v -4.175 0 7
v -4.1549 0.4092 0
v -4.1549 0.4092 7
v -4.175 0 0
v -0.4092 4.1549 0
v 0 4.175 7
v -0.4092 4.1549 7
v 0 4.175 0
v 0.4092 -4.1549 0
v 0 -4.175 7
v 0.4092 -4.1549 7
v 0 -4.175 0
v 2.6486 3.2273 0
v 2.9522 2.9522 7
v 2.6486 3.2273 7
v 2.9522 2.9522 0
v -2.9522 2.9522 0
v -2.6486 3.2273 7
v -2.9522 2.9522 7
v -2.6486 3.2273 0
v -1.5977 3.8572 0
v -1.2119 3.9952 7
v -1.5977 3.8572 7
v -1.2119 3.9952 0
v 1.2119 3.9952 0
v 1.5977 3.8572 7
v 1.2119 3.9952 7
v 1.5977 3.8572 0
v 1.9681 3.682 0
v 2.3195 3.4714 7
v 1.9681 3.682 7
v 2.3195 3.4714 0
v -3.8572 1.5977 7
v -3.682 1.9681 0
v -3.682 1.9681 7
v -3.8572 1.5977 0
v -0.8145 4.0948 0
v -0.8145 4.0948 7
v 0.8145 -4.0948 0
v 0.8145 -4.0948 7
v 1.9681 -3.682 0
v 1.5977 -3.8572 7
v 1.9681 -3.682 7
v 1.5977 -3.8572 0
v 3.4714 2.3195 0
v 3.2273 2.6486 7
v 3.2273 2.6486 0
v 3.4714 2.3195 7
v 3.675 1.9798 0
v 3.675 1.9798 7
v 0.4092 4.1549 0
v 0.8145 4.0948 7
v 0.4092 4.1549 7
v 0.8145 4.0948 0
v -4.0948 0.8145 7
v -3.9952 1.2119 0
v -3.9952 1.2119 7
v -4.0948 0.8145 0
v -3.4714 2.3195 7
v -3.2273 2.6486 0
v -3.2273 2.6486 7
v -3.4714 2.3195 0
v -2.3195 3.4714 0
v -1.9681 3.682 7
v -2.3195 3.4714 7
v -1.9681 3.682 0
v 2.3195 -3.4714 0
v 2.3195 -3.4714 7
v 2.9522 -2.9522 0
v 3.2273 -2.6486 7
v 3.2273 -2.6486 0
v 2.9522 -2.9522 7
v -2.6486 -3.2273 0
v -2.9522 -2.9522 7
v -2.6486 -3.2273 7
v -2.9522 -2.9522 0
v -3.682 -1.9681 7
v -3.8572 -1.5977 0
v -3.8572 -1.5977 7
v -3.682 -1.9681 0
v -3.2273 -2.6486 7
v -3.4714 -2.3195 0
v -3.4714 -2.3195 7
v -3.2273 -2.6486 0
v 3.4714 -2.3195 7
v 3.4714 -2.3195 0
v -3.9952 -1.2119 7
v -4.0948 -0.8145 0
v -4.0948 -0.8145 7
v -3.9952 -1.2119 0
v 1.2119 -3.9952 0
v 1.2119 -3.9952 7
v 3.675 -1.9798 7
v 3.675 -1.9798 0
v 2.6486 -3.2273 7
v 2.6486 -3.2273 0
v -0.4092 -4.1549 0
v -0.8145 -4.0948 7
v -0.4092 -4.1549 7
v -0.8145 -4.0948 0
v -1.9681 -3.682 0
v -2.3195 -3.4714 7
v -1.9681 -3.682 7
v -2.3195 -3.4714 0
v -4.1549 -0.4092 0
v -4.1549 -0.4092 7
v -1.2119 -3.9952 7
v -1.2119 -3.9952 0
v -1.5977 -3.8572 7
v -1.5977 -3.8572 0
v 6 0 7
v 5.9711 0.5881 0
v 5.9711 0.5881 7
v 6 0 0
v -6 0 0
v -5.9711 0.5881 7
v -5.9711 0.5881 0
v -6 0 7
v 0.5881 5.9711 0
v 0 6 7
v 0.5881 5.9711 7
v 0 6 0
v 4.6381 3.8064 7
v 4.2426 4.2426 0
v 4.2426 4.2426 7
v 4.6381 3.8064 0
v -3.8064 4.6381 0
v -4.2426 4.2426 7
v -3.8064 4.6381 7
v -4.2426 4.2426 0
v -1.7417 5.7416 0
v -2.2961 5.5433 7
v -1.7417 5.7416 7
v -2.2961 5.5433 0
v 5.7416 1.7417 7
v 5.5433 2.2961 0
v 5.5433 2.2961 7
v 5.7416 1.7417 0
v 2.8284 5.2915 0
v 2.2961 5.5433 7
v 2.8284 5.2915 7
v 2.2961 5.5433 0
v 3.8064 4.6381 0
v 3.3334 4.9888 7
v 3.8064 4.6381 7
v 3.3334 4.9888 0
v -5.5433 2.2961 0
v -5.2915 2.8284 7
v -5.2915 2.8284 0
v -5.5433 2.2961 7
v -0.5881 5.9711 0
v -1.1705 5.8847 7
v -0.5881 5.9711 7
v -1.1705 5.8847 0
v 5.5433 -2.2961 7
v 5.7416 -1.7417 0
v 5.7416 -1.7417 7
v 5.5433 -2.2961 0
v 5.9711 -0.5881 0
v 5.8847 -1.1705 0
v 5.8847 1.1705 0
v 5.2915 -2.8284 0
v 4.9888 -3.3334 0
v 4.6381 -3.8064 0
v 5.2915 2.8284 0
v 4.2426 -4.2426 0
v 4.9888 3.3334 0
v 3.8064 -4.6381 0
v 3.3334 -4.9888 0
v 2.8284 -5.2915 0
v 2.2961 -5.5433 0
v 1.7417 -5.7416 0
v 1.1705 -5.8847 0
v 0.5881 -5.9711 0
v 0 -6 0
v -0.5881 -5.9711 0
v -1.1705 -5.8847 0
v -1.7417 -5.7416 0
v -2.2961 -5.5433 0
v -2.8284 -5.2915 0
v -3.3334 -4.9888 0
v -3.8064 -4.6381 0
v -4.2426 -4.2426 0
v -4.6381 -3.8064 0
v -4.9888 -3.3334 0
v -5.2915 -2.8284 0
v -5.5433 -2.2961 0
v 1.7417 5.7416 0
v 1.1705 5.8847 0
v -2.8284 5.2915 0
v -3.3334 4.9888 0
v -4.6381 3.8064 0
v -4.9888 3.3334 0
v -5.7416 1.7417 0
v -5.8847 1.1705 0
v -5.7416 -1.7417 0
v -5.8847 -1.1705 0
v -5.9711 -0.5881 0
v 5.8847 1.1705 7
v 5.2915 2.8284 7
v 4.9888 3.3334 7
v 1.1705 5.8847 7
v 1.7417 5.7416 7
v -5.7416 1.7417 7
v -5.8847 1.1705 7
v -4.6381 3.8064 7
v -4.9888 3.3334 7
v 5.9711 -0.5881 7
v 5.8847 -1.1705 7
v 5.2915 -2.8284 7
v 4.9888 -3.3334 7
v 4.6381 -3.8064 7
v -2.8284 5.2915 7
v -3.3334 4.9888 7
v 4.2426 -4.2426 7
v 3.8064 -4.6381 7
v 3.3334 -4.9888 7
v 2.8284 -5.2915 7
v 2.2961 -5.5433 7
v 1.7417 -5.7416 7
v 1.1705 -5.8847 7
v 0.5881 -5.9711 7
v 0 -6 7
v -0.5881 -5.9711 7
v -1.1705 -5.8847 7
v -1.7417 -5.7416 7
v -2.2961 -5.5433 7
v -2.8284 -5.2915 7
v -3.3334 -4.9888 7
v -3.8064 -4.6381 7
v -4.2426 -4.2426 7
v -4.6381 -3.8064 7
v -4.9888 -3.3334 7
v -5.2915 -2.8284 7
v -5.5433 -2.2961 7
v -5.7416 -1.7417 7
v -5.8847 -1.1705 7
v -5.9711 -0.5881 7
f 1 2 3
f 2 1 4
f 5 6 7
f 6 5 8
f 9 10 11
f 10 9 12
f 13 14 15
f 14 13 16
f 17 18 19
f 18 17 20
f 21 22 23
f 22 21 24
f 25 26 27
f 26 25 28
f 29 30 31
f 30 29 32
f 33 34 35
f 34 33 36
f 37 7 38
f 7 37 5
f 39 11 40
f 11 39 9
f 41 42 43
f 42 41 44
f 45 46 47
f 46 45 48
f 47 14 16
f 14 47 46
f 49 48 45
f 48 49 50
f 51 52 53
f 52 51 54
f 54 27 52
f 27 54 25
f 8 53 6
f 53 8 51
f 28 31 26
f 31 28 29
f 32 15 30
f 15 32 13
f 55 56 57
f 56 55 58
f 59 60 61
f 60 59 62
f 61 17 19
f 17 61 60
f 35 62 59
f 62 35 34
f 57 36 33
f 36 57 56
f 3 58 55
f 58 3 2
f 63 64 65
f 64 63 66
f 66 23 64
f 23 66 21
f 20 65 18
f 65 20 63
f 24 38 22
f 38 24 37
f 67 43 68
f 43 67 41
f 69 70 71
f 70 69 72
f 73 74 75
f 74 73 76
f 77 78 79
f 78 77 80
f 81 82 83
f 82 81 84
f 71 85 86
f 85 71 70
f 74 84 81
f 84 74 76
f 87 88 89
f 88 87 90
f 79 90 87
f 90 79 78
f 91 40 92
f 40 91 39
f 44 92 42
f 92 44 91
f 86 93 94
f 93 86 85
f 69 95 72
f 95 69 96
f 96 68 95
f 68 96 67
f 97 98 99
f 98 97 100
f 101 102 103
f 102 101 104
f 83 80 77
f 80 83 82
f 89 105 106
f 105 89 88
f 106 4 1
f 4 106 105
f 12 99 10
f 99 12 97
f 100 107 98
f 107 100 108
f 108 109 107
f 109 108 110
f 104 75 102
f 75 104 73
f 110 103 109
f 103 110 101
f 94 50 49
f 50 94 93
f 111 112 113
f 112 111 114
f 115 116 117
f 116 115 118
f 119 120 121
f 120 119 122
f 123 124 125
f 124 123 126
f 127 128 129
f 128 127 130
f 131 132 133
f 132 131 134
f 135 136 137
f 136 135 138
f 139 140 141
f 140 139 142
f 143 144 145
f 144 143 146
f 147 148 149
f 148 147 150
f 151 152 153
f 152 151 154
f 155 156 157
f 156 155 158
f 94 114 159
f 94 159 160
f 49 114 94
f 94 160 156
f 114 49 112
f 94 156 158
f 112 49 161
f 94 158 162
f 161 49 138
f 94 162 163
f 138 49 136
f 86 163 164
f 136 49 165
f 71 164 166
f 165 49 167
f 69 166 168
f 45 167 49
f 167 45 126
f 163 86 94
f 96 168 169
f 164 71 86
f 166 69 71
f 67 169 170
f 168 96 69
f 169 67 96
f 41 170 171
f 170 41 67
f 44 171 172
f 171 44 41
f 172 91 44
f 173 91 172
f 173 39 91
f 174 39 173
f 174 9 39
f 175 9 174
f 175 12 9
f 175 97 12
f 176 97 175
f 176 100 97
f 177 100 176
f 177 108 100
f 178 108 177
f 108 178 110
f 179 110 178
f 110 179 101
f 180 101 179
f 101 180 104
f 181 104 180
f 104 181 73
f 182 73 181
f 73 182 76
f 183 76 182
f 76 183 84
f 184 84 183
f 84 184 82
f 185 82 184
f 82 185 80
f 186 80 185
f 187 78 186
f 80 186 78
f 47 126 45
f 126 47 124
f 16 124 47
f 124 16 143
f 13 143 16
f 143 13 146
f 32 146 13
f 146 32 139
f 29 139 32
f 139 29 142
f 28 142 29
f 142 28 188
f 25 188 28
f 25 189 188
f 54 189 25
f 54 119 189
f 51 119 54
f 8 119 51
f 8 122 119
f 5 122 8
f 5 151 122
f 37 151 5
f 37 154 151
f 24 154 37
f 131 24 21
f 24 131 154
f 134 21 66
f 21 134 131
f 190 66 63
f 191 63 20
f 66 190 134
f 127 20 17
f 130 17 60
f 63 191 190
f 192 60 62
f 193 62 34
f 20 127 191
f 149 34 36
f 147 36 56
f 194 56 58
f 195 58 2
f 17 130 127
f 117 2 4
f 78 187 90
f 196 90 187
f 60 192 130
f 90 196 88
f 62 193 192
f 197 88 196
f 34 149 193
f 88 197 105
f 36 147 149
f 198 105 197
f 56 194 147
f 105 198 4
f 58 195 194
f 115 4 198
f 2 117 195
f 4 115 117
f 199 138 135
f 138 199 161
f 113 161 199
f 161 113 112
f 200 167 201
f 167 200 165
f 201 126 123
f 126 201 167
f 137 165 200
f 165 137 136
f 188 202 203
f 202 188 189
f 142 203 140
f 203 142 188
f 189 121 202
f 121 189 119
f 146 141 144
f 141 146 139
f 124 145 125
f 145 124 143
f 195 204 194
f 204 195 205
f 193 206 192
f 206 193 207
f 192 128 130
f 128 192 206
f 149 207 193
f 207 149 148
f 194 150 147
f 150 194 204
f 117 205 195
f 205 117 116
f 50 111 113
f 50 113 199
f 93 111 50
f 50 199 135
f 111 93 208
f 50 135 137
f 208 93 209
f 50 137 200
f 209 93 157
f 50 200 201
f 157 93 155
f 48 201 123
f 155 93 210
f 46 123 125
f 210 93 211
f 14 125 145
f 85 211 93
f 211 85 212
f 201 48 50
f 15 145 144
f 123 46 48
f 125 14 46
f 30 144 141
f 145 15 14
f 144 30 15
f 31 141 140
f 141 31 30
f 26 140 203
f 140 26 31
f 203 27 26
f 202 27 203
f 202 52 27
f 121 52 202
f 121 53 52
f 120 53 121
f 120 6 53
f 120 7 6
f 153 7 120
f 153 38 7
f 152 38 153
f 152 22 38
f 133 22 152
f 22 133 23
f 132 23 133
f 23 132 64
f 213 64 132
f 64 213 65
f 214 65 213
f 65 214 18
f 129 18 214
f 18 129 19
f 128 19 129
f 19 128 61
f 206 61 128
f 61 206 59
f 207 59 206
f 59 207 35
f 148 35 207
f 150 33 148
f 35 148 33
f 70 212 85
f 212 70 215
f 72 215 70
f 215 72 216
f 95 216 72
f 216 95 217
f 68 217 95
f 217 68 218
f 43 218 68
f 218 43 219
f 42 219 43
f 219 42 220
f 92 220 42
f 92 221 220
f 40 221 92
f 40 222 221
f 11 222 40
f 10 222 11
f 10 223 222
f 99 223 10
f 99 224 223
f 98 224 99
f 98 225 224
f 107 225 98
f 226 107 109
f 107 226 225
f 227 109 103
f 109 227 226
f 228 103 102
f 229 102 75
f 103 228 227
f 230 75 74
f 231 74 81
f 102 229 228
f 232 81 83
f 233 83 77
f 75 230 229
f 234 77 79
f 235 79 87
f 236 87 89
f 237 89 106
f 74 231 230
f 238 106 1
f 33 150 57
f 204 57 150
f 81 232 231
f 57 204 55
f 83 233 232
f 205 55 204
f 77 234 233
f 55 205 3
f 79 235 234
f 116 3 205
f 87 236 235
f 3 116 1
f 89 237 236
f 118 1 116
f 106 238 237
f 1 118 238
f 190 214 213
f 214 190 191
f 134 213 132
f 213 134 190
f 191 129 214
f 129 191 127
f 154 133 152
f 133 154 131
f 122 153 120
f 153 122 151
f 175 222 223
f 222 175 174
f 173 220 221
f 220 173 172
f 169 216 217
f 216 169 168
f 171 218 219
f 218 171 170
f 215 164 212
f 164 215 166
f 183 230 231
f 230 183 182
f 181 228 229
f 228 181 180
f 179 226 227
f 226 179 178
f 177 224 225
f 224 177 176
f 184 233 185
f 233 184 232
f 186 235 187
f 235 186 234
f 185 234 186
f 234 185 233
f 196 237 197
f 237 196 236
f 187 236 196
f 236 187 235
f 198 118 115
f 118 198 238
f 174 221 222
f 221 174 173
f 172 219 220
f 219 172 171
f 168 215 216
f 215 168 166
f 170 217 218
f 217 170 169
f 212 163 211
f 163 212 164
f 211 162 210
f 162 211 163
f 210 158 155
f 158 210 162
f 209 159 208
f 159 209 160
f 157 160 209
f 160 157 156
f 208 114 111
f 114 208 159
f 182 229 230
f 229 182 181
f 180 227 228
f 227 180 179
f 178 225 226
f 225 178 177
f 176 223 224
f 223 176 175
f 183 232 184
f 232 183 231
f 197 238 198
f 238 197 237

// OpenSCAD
// Gen-DG — gap sleeve: rigid spacer on the shaft BETWEEN the two rotor carriers (passes through the stator
// hole). Length = m2m, so it sets the magnet gap and carries the full magnet pull. Print x1, upright.
include <parameters.scad>;
$fn = 64;
// D-flat keyed bore: flat faces +X (angle 0 = magnet pocket 0 = index notch)
module dflat_bore(h) {
    intersection() {
        cylinder(d=shaft_bore, h=h);
        translate([-shaft_bore, -shaft_bore, 0]) cube([shaft_bore + dflat_x, 2*shaft_bore, h]);
    }
}

difference() {
    cylinder(d=sleeve_od, h=m2m);
    translate([0, 0, -0.1]) dflat_bore(m2m + 0.2);
}
